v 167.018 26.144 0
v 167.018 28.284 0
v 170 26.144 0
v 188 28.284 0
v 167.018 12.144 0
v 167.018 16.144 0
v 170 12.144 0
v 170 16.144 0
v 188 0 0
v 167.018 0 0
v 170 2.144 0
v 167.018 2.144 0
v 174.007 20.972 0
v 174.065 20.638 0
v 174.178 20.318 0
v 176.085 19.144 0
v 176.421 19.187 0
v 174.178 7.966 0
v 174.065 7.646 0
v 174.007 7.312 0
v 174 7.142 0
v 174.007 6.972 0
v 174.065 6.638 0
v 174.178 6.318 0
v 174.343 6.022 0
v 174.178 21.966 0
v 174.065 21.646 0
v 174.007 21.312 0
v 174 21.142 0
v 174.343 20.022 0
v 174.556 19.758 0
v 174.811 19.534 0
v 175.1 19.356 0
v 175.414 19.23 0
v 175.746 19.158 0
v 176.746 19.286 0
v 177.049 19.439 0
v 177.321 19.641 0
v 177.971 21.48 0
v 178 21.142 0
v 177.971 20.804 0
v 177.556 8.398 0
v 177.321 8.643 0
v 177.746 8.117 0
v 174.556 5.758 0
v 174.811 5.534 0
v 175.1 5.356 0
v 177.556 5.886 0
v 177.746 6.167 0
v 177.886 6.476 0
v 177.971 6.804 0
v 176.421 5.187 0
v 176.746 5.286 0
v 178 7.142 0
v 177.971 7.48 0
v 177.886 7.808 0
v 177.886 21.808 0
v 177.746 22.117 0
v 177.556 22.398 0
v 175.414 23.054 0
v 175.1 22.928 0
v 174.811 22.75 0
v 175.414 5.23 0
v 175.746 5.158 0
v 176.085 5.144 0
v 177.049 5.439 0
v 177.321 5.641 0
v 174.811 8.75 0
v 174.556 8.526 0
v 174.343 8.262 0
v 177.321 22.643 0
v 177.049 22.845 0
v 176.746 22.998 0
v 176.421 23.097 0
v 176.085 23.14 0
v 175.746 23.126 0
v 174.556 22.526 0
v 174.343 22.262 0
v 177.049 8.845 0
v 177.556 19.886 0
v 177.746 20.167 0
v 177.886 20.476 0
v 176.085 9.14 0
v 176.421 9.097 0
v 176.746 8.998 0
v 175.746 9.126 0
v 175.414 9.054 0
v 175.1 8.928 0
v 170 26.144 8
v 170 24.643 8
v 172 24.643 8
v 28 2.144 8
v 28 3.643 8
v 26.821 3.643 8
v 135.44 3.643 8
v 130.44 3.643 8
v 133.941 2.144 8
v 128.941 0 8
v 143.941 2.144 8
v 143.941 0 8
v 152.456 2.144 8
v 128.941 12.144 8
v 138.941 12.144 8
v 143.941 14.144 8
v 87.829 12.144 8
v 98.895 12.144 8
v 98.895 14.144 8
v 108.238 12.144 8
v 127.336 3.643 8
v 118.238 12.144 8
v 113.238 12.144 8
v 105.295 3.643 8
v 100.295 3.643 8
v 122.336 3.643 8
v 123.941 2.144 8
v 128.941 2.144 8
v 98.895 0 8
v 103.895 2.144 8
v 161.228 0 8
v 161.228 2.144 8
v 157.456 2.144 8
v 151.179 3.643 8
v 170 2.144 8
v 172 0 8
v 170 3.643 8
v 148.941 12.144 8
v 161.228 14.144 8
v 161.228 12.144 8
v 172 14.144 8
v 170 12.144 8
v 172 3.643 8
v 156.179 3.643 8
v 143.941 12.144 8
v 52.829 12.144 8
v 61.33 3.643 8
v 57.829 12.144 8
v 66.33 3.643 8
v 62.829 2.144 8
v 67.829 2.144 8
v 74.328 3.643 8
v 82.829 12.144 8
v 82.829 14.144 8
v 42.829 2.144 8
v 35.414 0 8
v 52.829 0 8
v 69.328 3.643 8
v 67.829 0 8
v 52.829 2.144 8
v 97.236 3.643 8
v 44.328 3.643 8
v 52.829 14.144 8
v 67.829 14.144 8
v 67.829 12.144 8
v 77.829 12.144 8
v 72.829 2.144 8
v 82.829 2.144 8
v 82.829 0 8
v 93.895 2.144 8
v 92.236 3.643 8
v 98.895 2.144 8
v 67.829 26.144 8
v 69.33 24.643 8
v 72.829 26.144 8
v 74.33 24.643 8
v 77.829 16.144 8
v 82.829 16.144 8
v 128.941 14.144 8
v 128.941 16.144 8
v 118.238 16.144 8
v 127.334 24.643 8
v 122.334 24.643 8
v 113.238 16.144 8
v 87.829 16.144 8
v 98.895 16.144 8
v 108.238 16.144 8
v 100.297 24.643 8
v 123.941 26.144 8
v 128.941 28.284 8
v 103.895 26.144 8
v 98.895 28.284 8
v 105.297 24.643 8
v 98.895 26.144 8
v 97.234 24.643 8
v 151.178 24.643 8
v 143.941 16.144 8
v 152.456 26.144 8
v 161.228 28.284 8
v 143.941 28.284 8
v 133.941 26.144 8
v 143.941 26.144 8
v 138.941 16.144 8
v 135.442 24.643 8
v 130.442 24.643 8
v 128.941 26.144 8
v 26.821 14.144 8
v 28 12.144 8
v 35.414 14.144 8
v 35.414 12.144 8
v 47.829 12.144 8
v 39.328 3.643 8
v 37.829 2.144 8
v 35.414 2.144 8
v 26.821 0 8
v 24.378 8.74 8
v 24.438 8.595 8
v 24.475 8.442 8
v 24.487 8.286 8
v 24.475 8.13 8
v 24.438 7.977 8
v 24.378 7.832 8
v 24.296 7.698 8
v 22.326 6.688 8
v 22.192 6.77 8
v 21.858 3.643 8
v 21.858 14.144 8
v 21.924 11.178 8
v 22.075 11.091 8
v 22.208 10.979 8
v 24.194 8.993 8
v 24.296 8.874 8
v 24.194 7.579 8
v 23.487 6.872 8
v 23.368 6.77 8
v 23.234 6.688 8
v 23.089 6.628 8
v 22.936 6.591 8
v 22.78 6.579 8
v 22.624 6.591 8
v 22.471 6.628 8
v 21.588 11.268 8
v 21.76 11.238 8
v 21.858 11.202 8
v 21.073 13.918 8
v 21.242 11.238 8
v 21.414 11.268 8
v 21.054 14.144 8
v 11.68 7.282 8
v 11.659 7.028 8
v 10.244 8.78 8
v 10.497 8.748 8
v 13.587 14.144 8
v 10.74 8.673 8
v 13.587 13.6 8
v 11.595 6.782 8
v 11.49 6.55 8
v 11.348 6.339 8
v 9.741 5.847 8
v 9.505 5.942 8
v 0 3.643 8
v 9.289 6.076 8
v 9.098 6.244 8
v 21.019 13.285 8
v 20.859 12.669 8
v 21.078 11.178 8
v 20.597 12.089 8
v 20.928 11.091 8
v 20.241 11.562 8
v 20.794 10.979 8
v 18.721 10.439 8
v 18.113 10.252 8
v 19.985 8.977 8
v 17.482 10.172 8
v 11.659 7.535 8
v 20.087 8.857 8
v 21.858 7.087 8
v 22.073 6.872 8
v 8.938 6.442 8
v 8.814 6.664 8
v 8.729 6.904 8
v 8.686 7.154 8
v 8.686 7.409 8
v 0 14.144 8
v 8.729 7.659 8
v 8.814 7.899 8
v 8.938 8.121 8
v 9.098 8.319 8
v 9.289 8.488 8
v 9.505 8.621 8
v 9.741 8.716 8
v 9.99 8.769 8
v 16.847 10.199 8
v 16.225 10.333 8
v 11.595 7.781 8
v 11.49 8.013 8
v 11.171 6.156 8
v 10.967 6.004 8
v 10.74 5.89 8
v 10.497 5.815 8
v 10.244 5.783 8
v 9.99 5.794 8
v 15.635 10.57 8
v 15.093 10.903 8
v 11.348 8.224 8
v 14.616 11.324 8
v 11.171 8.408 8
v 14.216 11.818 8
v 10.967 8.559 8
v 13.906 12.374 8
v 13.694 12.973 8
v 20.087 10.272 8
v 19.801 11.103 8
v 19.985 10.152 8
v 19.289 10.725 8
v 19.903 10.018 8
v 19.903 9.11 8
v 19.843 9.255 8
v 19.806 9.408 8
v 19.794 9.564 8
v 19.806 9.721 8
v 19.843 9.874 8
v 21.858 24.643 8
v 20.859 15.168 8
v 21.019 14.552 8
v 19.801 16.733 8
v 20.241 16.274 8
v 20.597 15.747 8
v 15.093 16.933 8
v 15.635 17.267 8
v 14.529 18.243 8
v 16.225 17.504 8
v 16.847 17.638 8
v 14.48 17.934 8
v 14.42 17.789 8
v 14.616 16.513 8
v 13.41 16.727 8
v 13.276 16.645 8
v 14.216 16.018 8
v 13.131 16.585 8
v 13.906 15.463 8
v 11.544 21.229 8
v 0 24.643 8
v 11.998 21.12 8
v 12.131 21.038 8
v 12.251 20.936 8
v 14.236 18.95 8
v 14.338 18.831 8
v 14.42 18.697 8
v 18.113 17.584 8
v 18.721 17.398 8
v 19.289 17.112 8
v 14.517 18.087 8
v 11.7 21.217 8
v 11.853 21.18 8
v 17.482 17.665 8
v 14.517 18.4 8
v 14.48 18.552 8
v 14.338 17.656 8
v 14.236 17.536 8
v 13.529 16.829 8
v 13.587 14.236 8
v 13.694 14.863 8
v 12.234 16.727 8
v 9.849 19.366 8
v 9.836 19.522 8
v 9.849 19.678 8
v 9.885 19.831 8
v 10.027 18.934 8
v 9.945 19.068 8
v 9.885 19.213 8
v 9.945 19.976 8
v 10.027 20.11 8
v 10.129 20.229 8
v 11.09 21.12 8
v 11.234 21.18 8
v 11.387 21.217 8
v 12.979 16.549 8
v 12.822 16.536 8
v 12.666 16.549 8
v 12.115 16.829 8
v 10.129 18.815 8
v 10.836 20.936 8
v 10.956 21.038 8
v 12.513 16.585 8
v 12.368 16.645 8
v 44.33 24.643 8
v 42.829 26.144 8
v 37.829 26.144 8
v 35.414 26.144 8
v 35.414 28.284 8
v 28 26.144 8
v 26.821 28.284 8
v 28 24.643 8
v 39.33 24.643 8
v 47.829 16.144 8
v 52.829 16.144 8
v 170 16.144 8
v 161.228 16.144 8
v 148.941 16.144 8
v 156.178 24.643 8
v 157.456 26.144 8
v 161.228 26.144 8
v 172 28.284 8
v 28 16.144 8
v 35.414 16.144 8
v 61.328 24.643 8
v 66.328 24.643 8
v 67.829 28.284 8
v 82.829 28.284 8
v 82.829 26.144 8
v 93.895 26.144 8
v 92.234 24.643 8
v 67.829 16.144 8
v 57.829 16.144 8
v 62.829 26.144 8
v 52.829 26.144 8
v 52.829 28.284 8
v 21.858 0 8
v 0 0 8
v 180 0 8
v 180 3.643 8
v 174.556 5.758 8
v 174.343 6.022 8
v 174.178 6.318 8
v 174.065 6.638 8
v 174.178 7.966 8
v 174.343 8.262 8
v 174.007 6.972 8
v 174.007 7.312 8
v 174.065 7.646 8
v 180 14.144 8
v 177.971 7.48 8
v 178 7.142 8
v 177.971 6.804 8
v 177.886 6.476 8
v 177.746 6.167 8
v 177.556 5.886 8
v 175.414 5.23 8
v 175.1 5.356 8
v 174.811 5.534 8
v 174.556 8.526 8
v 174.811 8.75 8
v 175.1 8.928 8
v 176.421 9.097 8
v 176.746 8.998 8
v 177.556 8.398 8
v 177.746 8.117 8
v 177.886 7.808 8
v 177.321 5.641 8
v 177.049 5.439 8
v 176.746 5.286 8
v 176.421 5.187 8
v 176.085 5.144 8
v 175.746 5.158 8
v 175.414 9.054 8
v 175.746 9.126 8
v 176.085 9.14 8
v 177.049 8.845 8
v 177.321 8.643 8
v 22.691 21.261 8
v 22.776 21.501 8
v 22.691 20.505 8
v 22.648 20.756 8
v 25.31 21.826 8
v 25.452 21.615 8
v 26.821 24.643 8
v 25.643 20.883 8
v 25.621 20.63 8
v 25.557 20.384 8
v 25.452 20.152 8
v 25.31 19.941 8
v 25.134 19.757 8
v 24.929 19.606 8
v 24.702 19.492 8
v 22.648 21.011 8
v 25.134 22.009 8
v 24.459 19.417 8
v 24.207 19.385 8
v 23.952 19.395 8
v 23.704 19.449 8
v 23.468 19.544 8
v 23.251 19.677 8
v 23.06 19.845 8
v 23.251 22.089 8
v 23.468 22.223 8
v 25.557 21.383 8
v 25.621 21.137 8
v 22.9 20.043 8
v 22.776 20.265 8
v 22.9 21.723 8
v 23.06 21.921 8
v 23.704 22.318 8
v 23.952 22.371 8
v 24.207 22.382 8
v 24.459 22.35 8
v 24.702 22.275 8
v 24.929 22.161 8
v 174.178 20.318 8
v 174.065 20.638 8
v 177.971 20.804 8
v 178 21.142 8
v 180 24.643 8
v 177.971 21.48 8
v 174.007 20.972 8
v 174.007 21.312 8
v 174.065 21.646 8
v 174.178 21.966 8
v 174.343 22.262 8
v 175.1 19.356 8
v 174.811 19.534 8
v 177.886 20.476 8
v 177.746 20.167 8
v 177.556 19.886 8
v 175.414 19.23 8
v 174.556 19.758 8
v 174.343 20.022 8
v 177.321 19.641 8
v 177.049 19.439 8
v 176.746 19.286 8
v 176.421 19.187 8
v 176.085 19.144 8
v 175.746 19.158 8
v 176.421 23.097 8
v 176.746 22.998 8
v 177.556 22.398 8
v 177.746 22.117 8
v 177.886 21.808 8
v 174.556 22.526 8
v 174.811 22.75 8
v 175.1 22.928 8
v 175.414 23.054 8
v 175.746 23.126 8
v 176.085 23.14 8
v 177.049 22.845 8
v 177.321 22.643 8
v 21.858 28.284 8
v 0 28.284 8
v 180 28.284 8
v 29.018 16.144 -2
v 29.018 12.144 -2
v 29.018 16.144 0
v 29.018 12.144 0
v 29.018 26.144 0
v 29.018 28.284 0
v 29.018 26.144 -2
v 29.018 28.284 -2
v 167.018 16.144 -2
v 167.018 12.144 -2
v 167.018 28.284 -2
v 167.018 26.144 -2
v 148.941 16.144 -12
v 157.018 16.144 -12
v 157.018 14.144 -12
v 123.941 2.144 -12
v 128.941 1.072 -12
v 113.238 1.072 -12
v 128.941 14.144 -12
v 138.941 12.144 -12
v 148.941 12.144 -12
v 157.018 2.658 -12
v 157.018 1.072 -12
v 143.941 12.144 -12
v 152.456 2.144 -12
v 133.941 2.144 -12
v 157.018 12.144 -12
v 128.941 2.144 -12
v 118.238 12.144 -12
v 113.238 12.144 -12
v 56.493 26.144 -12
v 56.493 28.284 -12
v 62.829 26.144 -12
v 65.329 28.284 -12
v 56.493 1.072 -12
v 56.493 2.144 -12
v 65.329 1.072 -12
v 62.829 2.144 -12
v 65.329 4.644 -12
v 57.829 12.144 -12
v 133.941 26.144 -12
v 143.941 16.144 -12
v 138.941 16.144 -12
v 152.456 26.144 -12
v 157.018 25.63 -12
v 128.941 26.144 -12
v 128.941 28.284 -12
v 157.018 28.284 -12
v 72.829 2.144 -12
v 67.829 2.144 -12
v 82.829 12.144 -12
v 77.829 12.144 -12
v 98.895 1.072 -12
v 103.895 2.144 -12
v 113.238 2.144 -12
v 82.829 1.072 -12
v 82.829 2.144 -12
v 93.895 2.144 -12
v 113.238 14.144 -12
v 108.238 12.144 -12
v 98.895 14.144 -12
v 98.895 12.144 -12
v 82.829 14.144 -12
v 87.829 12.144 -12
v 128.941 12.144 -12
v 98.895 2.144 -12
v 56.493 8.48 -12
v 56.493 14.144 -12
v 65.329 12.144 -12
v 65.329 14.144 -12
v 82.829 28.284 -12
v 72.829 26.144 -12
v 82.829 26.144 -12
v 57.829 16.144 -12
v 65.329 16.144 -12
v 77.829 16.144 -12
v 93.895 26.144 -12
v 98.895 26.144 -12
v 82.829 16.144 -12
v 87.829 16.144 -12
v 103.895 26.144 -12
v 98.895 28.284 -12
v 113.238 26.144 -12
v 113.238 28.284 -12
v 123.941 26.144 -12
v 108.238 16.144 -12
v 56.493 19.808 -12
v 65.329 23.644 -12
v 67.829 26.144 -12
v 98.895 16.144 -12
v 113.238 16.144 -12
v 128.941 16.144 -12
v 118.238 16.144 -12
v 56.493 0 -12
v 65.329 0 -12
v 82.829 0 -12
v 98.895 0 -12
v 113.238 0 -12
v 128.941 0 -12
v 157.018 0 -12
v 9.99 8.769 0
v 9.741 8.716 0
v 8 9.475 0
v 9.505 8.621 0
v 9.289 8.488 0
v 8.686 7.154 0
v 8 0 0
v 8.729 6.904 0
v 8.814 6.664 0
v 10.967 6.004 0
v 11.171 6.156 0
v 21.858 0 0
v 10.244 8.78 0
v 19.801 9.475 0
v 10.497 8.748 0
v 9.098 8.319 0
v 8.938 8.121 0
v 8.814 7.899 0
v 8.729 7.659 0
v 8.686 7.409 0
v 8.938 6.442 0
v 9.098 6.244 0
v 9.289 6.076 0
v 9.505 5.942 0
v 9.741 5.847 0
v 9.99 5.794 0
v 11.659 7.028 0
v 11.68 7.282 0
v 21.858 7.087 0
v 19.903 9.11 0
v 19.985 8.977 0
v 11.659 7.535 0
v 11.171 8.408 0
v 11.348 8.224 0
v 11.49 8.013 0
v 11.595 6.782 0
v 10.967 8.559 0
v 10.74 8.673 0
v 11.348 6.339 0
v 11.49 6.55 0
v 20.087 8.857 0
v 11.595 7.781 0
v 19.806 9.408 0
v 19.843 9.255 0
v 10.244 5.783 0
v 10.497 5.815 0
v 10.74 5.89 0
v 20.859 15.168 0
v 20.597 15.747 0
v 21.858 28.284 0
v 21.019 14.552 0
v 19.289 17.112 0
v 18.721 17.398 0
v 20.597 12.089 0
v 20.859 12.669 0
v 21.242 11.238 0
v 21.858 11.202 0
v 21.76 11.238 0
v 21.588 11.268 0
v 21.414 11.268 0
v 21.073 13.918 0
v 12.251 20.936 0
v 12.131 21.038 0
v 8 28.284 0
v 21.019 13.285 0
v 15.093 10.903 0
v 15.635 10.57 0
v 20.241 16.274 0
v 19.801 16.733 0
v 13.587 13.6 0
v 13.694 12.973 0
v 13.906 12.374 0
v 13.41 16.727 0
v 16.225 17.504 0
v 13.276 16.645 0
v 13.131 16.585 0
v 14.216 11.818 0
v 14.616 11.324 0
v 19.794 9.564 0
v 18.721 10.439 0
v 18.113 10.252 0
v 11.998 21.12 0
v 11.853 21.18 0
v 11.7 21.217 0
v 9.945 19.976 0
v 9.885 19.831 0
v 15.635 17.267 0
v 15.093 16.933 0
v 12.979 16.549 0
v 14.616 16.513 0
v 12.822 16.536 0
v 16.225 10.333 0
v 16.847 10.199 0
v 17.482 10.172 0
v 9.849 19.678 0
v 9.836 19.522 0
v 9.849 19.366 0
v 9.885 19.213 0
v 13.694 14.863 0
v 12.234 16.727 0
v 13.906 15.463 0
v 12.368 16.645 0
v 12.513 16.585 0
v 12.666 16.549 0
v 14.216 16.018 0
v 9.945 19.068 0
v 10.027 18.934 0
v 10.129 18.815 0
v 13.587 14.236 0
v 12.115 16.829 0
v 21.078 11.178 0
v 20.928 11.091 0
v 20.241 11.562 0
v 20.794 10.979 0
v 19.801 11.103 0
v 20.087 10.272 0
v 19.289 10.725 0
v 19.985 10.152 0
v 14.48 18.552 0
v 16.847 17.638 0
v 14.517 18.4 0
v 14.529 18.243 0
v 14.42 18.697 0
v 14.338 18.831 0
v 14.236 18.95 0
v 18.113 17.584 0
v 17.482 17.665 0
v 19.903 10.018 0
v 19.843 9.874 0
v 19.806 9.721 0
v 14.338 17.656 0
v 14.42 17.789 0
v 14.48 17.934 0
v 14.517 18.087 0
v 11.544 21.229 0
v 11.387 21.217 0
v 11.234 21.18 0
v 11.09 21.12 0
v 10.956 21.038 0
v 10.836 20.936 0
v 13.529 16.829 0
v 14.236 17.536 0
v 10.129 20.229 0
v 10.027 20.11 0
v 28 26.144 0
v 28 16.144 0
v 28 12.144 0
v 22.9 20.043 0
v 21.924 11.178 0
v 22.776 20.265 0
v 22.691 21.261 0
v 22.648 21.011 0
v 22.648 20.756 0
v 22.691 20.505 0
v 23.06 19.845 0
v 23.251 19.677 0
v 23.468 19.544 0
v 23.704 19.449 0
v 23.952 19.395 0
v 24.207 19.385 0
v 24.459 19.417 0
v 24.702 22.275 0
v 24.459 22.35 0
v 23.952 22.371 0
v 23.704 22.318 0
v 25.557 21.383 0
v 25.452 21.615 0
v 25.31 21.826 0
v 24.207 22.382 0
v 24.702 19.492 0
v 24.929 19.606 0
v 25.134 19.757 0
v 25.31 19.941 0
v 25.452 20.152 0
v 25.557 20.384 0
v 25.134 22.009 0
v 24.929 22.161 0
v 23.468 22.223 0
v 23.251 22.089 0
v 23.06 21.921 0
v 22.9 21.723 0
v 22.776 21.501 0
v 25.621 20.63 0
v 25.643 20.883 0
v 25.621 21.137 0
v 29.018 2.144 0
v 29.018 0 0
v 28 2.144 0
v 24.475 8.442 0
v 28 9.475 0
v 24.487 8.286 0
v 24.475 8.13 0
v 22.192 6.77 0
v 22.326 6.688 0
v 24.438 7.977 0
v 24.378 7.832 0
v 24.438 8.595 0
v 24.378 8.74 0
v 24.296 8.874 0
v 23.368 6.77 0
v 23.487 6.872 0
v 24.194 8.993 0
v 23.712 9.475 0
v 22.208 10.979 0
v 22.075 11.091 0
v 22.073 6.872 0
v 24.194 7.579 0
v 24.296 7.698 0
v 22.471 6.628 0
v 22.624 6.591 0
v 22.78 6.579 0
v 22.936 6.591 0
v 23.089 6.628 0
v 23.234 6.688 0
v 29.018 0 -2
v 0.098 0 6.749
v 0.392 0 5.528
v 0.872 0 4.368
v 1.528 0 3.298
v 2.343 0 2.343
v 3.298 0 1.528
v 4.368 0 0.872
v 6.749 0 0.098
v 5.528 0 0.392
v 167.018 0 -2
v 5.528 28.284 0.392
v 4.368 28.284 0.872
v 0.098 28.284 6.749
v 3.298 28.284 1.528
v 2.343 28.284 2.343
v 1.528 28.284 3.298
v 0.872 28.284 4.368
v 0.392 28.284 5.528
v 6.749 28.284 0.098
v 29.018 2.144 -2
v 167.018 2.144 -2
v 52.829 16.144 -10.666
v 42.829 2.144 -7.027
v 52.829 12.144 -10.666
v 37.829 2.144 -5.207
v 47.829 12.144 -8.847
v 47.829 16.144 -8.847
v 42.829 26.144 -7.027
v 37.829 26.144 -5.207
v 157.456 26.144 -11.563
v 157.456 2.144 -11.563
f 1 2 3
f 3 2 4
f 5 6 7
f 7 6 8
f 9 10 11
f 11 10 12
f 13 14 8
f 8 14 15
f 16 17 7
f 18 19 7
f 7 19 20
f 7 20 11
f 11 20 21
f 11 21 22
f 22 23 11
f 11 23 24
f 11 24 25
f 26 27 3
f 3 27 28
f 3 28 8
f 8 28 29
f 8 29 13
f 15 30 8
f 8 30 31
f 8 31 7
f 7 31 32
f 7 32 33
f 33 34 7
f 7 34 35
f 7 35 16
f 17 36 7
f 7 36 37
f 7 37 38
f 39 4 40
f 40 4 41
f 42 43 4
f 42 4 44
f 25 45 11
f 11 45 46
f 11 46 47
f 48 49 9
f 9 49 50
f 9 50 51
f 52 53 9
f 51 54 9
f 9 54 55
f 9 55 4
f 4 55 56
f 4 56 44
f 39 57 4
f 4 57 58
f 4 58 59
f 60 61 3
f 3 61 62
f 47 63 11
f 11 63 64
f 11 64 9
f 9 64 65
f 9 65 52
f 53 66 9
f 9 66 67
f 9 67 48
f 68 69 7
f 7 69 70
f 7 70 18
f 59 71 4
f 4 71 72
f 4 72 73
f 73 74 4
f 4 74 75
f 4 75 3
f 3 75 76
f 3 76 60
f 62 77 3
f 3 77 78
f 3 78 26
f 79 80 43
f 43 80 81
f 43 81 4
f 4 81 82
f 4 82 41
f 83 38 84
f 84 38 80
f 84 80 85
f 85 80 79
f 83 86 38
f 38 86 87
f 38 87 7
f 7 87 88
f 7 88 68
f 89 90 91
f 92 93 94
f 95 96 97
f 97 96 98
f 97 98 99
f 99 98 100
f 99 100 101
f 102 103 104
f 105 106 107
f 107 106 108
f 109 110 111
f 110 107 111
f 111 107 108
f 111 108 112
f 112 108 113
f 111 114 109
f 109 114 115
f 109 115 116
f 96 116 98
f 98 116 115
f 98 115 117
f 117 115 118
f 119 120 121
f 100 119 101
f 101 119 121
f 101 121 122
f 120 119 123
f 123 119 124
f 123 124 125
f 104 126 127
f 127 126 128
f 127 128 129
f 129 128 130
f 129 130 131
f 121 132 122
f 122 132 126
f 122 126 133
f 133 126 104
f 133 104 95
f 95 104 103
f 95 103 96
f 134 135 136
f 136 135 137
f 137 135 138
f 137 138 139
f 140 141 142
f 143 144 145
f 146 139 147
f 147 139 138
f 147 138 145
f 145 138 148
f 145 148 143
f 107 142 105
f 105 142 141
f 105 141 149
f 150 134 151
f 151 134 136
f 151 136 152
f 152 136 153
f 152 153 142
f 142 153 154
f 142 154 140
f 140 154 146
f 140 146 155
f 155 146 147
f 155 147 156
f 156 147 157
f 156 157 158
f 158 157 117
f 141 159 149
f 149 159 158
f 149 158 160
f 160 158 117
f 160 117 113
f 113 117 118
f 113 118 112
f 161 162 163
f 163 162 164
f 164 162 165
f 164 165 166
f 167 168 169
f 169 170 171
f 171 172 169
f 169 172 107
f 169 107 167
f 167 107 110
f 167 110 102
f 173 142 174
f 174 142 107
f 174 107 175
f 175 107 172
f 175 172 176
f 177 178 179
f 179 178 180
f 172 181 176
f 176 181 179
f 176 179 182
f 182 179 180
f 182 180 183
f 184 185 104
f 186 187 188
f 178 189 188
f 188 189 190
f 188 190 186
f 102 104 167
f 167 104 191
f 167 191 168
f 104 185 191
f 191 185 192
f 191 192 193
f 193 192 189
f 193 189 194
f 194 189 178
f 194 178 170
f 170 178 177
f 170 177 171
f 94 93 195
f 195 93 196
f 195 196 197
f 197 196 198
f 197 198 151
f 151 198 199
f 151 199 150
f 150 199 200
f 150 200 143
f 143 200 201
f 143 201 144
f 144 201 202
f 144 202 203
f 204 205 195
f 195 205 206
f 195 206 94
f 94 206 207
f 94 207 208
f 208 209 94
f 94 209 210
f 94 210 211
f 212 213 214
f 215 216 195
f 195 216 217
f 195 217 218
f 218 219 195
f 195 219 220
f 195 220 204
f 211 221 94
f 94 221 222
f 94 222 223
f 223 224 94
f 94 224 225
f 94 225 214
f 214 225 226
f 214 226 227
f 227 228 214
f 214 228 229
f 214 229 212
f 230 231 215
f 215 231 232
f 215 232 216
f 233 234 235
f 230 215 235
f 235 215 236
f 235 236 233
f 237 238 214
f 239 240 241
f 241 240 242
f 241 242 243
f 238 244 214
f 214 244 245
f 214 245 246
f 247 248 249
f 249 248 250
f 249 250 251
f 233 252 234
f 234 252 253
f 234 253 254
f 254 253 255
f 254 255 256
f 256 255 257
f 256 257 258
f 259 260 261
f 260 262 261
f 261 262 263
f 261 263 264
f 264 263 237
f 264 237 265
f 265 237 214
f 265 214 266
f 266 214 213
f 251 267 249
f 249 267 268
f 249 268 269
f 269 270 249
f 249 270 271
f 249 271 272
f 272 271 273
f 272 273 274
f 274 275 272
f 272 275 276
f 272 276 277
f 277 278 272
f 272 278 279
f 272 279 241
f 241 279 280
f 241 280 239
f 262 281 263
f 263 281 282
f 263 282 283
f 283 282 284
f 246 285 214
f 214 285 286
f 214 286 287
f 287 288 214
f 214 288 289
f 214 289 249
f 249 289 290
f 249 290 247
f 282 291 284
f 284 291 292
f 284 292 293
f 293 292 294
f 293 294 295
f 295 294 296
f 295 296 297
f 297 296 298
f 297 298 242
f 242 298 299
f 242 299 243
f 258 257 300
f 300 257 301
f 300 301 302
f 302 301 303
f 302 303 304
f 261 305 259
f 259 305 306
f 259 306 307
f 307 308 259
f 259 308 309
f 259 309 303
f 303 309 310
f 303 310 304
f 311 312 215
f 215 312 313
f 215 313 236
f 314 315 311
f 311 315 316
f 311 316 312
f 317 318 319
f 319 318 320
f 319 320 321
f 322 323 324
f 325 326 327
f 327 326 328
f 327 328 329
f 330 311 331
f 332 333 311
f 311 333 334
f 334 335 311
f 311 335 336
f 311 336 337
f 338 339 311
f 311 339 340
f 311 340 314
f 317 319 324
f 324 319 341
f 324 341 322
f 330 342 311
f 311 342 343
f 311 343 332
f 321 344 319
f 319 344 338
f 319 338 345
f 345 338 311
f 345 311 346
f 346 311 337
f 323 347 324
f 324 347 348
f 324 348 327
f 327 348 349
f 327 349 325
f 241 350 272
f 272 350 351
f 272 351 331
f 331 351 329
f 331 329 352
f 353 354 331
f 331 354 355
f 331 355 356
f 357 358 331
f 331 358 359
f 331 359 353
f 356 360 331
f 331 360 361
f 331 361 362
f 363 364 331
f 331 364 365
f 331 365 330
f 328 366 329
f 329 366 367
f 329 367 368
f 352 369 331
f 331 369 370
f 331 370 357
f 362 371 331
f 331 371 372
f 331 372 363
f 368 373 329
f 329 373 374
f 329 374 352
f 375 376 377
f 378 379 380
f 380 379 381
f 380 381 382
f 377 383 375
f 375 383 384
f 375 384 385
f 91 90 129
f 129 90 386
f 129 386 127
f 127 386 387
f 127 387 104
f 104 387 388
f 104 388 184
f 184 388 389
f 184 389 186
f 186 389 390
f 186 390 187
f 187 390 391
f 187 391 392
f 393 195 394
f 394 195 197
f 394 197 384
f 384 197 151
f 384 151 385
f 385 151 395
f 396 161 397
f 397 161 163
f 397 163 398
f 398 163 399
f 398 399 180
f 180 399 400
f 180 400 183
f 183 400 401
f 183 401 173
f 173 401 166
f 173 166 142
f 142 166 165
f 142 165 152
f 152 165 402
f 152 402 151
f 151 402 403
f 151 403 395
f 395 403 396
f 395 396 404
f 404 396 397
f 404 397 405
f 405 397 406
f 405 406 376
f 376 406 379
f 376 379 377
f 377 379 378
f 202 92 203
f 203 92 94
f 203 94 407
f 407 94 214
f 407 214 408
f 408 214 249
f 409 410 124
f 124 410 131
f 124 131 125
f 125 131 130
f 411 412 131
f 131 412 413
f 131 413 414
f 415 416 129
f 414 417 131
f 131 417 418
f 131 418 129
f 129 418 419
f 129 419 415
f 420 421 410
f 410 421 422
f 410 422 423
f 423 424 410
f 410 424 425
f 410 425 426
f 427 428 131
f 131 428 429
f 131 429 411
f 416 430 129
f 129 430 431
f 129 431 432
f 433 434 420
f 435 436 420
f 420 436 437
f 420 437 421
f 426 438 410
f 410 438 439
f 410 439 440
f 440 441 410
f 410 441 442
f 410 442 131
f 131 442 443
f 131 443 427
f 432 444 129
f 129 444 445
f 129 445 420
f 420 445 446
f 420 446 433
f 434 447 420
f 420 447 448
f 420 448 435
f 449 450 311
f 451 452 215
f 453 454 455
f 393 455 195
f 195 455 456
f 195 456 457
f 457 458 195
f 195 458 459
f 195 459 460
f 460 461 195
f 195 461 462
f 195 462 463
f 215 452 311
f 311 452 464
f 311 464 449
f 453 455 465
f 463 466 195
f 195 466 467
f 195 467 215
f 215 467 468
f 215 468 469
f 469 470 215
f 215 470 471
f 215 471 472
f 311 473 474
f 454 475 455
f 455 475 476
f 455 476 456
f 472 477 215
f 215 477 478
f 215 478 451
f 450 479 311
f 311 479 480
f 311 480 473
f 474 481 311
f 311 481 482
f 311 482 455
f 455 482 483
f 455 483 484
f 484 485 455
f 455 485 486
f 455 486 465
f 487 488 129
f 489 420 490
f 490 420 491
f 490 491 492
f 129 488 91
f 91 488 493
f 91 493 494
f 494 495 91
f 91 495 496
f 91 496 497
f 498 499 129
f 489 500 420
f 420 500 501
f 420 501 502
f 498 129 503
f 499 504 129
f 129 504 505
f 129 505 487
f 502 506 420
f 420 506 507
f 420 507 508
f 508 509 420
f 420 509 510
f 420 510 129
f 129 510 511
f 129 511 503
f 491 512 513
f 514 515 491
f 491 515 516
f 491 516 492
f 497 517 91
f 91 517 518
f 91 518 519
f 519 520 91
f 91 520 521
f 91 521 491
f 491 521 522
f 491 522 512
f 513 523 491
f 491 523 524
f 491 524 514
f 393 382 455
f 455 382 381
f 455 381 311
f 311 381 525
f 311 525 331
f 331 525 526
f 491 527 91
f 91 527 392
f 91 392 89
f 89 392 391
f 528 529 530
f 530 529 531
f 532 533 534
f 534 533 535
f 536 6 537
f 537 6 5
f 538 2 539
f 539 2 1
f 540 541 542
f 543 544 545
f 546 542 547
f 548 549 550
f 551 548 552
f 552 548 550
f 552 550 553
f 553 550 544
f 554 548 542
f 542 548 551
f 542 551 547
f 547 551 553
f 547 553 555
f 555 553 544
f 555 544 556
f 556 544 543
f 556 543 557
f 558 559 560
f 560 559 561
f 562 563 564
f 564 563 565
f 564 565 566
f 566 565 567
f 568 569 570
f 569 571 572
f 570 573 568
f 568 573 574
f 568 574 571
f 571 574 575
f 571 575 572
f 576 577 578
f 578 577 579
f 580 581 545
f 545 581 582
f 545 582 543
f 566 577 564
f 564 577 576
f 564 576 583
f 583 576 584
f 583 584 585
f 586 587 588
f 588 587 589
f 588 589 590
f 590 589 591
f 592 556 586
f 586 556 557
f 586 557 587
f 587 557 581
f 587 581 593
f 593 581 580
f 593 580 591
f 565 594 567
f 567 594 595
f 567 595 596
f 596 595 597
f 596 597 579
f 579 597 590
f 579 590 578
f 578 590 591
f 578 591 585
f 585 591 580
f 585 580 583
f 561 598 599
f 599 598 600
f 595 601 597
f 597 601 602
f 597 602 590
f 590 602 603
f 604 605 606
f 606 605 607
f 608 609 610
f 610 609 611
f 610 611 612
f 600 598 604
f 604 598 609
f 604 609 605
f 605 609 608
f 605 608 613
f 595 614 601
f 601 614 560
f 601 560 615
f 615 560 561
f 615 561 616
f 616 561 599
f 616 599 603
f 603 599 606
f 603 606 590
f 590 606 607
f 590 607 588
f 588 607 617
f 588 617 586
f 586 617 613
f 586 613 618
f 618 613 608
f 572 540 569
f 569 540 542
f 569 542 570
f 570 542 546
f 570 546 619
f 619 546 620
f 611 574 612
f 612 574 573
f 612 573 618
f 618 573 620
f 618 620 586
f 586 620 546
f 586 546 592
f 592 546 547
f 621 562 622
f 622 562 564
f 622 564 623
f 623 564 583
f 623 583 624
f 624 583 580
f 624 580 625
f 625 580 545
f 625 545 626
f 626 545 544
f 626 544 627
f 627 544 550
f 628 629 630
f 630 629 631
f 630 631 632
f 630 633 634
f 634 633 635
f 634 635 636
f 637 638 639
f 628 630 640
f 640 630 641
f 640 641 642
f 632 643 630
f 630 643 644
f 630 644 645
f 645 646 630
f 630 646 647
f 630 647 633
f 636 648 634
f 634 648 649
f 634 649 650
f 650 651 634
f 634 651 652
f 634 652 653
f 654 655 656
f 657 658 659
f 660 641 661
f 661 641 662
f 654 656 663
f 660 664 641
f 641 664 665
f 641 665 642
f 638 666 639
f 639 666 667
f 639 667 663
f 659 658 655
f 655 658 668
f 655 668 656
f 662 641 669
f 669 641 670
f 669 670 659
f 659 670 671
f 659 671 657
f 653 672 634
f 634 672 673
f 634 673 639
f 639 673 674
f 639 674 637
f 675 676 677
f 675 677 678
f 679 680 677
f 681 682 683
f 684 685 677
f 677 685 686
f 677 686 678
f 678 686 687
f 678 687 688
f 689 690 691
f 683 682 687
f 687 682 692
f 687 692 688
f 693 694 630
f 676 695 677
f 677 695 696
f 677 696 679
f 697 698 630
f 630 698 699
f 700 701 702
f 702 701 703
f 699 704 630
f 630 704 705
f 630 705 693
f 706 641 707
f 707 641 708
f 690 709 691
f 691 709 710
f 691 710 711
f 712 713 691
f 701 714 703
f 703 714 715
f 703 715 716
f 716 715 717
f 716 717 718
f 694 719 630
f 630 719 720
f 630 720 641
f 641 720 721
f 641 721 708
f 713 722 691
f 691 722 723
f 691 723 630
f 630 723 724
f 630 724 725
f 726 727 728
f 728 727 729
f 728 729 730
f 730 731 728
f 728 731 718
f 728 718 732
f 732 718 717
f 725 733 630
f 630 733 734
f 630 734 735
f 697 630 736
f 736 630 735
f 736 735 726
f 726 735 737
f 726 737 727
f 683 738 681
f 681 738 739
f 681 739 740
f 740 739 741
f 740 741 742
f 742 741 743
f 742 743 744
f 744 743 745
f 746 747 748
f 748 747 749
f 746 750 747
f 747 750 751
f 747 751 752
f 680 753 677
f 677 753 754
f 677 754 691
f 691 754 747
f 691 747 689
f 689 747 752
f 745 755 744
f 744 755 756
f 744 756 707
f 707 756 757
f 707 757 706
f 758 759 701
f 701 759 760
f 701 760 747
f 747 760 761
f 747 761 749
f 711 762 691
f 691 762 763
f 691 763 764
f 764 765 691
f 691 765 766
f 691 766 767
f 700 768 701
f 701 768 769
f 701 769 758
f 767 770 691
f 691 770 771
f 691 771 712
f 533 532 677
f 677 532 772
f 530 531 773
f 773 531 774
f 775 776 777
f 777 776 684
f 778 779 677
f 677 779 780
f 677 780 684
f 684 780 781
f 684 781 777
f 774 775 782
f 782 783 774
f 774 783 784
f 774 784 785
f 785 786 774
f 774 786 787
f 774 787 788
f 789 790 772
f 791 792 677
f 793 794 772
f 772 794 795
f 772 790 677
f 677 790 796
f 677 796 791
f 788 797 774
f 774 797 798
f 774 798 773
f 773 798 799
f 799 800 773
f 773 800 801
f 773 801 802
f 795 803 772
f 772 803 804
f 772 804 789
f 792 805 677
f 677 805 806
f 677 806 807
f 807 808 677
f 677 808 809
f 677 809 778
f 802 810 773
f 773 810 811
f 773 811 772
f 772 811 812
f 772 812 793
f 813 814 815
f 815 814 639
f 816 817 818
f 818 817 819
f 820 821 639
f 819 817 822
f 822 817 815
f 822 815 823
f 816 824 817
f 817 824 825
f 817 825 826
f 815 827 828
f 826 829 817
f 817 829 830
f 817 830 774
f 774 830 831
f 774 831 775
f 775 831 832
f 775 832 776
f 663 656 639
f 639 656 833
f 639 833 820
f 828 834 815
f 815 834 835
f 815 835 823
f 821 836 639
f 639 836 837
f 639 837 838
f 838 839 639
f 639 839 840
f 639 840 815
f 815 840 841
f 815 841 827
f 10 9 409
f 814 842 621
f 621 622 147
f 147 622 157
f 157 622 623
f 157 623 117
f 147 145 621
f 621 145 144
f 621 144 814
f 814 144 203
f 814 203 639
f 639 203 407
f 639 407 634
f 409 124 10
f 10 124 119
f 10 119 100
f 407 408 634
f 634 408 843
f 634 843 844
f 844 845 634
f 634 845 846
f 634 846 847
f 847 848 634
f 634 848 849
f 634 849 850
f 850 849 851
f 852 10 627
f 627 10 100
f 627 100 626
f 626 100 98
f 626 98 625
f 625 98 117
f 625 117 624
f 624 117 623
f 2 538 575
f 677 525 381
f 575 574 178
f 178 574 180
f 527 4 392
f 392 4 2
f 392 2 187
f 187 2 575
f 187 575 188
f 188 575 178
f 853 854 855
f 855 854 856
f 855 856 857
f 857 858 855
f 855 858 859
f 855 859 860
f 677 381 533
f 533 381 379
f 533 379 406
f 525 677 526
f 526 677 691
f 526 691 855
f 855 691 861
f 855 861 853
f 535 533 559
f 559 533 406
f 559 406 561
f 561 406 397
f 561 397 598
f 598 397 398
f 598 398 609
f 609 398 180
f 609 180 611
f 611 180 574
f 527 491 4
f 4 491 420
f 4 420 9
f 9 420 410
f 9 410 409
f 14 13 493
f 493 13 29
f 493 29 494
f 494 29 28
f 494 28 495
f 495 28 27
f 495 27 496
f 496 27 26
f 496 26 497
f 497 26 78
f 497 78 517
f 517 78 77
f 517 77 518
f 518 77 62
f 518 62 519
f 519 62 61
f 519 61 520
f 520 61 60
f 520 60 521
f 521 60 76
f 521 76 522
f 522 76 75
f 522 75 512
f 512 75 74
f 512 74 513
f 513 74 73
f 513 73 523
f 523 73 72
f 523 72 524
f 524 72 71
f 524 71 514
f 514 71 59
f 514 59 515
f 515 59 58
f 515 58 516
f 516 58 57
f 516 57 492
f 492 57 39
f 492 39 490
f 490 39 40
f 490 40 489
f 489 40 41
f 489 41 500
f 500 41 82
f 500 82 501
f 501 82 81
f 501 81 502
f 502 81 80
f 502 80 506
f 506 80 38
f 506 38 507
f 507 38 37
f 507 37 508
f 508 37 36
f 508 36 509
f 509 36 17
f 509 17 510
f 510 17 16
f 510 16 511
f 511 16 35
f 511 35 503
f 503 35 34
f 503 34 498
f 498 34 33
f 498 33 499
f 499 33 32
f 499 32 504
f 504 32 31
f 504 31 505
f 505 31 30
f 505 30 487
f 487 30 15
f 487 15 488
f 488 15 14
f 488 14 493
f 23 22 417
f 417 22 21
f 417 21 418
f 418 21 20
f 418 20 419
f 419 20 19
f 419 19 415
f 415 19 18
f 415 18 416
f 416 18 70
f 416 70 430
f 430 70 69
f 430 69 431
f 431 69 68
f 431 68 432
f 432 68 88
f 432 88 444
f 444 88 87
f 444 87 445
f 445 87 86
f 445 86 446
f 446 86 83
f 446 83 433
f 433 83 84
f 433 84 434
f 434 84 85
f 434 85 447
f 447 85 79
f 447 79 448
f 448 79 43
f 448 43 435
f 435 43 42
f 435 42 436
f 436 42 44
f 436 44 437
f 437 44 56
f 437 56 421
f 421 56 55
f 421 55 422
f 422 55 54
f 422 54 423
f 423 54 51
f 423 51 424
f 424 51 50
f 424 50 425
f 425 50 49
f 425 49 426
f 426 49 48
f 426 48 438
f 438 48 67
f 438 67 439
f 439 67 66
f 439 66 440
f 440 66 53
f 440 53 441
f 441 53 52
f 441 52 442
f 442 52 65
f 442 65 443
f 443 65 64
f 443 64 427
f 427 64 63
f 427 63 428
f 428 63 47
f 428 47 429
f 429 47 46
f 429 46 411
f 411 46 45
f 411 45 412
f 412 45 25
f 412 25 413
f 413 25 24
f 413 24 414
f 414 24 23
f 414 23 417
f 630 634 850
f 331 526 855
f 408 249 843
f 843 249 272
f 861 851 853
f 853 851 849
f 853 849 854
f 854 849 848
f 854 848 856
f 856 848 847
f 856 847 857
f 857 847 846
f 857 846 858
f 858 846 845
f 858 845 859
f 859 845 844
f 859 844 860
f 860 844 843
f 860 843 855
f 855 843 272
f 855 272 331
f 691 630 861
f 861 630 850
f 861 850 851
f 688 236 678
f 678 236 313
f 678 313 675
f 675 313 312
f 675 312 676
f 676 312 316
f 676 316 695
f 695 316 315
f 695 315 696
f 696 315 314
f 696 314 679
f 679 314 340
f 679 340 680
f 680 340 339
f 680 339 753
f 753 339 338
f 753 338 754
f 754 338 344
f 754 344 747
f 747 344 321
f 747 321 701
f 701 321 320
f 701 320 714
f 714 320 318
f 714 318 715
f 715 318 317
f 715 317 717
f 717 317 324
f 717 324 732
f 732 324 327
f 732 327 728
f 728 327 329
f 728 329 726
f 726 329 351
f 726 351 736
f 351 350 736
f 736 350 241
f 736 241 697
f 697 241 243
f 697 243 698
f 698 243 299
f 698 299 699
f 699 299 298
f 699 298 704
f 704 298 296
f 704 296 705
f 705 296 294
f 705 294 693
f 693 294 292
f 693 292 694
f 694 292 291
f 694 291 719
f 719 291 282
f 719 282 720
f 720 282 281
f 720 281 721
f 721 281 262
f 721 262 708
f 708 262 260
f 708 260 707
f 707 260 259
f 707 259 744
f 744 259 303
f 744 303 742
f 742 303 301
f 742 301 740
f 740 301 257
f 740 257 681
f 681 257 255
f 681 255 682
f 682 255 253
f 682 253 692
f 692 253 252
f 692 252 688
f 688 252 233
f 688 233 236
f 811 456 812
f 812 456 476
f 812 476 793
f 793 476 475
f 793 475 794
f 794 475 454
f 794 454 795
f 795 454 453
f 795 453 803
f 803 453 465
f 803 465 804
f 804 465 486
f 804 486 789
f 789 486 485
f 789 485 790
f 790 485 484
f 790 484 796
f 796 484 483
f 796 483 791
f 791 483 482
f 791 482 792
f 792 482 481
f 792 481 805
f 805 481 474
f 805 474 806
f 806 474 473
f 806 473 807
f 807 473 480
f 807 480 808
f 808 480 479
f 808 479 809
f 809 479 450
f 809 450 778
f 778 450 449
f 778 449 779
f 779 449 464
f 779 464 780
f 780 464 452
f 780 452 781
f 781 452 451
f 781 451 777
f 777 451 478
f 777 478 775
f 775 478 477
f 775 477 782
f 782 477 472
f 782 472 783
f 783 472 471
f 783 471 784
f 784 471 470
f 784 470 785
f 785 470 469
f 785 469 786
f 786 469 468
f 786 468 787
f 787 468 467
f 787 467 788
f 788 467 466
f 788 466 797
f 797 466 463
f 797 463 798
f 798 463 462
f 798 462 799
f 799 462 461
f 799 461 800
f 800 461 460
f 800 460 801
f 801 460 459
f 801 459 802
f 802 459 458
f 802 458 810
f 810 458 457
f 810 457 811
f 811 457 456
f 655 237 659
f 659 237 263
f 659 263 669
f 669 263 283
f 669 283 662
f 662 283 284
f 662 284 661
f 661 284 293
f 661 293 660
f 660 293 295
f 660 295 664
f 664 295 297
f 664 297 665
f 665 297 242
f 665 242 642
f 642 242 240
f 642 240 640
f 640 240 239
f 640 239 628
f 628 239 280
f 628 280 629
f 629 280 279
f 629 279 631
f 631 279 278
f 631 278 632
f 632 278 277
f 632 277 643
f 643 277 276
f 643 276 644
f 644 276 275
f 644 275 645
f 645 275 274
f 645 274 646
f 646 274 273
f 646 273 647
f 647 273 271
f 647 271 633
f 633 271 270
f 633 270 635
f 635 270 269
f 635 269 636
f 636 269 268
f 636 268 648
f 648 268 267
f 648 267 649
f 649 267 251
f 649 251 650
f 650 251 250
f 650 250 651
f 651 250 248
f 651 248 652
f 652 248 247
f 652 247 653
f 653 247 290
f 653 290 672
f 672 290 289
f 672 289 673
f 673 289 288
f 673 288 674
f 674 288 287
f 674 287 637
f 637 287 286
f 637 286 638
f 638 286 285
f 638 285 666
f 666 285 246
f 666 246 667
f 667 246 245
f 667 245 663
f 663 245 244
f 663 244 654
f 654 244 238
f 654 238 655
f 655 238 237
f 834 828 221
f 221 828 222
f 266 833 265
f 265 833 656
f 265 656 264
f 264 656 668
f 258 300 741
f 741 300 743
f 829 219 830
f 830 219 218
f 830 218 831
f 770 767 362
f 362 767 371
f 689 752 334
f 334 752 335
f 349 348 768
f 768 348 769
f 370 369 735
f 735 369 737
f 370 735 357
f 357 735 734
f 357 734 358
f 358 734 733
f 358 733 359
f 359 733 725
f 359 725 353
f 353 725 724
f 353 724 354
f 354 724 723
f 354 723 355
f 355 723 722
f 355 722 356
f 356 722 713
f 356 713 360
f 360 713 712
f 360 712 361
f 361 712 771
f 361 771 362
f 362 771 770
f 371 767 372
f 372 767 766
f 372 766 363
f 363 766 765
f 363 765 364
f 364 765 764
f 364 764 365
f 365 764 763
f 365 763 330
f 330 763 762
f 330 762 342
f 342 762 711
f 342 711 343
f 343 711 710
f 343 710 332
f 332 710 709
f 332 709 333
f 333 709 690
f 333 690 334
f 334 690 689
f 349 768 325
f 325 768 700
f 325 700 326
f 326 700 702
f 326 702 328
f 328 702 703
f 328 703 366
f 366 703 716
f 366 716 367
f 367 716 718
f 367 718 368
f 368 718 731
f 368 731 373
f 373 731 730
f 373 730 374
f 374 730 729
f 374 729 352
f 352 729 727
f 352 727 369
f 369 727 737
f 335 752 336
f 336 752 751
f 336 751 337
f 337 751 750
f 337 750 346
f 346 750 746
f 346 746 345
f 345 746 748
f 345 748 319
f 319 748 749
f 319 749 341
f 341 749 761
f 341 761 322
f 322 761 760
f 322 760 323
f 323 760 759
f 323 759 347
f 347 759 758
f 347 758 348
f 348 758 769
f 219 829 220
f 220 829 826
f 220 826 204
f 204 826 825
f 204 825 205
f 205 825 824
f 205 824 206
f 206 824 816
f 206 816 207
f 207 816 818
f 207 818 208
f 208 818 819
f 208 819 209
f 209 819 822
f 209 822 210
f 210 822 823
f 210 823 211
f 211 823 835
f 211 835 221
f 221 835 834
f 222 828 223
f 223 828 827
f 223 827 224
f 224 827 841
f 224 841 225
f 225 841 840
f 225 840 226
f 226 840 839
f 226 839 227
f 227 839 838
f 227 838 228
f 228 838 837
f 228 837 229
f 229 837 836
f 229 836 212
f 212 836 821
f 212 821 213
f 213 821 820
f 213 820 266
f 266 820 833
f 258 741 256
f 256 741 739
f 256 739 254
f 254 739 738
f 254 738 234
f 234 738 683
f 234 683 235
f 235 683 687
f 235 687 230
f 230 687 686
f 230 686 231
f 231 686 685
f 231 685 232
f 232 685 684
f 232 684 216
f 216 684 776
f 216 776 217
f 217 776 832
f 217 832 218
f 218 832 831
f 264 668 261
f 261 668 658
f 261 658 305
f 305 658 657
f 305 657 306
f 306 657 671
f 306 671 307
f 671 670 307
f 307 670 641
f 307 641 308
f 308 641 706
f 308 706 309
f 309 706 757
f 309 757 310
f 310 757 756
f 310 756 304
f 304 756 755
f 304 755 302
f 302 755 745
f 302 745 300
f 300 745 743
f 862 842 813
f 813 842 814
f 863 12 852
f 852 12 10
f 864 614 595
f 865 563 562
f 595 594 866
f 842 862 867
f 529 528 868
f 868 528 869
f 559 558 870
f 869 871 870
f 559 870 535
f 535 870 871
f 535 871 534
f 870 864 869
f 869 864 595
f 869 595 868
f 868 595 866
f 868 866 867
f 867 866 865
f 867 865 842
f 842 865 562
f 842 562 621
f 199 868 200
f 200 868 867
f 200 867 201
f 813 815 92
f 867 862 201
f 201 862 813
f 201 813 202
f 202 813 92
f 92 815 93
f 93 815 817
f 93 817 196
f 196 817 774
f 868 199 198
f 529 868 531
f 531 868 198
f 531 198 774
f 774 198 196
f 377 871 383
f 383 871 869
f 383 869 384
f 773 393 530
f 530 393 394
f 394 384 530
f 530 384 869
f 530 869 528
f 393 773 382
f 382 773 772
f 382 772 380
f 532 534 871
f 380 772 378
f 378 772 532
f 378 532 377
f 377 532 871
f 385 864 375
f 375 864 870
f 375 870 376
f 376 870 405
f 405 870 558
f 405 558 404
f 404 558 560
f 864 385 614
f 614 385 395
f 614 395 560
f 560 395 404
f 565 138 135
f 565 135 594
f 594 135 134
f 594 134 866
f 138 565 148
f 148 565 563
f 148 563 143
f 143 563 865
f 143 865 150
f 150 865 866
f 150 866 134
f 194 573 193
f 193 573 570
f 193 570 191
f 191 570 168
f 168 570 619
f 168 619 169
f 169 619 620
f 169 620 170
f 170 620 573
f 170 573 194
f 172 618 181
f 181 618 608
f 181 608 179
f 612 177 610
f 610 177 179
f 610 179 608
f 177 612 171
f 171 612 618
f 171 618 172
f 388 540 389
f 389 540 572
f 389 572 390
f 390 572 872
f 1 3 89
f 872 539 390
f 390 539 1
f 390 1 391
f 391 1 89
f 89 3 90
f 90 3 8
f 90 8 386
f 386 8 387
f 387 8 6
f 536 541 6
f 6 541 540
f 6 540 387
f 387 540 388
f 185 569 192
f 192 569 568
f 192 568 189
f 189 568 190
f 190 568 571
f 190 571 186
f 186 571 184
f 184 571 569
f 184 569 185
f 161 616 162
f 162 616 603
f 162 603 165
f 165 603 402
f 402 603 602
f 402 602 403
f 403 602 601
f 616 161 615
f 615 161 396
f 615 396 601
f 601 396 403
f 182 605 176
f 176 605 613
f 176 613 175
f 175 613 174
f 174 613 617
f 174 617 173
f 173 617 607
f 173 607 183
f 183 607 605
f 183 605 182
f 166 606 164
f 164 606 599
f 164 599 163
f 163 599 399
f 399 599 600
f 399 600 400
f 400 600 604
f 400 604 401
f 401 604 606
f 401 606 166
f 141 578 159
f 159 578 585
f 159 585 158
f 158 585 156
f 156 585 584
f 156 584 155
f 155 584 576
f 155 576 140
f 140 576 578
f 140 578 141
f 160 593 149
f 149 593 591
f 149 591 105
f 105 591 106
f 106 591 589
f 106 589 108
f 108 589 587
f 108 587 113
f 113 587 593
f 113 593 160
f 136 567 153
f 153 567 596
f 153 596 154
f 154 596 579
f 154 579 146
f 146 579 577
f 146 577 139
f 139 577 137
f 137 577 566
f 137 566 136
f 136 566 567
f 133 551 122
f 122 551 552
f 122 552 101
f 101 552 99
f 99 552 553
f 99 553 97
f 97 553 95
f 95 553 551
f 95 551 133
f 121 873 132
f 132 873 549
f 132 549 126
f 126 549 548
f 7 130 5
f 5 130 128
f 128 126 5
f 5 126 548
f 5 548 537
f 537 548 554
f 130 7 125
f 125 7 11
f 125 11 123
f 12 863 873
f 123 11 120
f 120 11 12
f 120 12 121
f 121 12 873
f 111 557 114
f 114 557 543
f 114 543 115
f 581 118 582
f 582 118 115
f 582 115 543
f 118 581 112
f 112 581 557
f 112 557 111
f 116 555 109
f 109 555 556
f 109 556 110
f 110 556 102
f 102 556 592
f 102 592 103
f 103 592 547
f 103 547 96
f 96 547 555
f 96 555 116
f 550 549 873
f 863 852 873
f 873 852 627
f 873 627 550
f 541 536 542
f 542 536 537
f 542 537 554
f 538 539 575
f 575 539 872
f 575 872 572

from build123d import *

# Parameters (mm, degrees)
ESQUISSE1_W         = 200
ESQUISSE1_H         = 28.284
BOSS_EXTRU_3_DEPTH  = 8
CHANFREIN1_SIZE     = 20
ESQUISSE4_R         = 2
CUT_EXTRUDE5_DEPTH  = 30
FILLET1_R           = 8
SKETCH2_R           = 1.5
SKETCH2_R_2         = 3.75
CUT_EXTRUDE1_DEPTH  = 8
FILLET9_R           = 1
FILLET10_R          = 1
SKETCH6_W           = 138
SKETCH6_H           = 28.284
BOSS_EXTRUDE3_DEPTH = 12
CHAMFER2_SIZE       = 10
CHAMFER2_SIZE2      = 27.474774195
CUT_EXTRUDE6_DEPTH  = 20
CHAMFER8_SIZE       = 10
CHAMFER9_SIZE       = 10


# Some blends are built 0.0001 mm under size
with BuildPart() as part:
    # Esquisse1 → Boss.-Extru.3 (new body)
    with BuildSketch(Plane.XY):
        with Locations((100, 14.142)):
            Rectangle(ESQUISSE1_W, ESQUISSE1_H)
    extrude(amount=BOSS_EXTRU_3_DEPTH)

    # Chanfrein1
    # the kernel refuses this chamfer: 20 mm, written as the material it takes off along each edge
    with BuildSketch(Plane(origin=(200, -51.433659759, 8), x_dir=(0.027495876610586317, 0, -0.9996219169112968), z_dir=(0, 1, 0))) as chanfrein1_piece_1:
        Polygon((CHANFREIN1_SIZE * 0.999621916911, CHANFREIN1_SIZE * 0.0274958766106), (-CHANFREIN1_SIZE * 0.0274958766106, CHANFREIN1_SIZE * 0.999621916911), (0, 0), align=None)
    extrude(amount=131.151319519, mode=Mode.SUBTRACT)

    # Esquisse4 → Cut-Extrude5 (cut)
    with BuildSketch(Plane.XY.offset(8)):
        with Locations((176, 7.142)):
            Circle(ESQUISSE4_R)
        with Locations((176, 21.142)):
            Circle(ESQUISSE4_R)
    extrude(amount=-CUT_EXTRUDE5_DEPTH, mode=Mode.SUBTRACT)

    # Fillet1
    fillet1_edges = [part.edges().sort_by_distance(p)[0] for p in [
        (0, 14.142, 0),
    ]]
    fillet(fillet1_edges, radius=FILLET1_R - 0.0001)  # a hair under: the kernel refuses the full size

    # Sketch2 → Cut-Extrude1 (cut)
    with BuildSketch(Plane.XY.offset(8)):
        with Locations((10.180485171, 7.281517741)):
            Circle(SKETCH2_R)
        with Locations((24.142857006, 20.883346587)):
            Circle(SKETCH2_R)
        with Locations((17.323003706, 13.918303783)):
            Circle(SKETCH2_R_2)
        Polygon((14.943517177, 18.243352736), (12.822196834, 16.122032392), (9.422196834, 19.522032392), (11.543517177, 21.643352736), align=None)
        Polygon((19.379761465, 9.564467761), (22.780003771, 6.164594852), (24.901208877, 8.286030428), (21.501081812, 11.685788108), align=None)
    extrude(amount=-CUT_EXTRUDE1_DEPTH, mode=Mode.SUBTRACT)

    # Fillet9
    fillet9_edges = [part.edges().sort_by_distance(p)[0] for p in [
        (9.422196834, 19.522032392, 4),
        (11.543517177, 21.643352736, 4),
        (14.943517177, 18.243352736, 4),
        (12.822196834, 16.122032392, 4),
    ]]
    fillet(fillet9_edges, radius=FILLET9_R)

    # Fillet10
    fillet10_edges = [part.edges().sort_by_distance(p)[0] for p in [
        (24.901208877, 8.286030428, 4),
        (22.780003771, 6.164594852, 4),
        (19.379761465, 9.564467761, 4),
        (21.501081812, 11.685788108, 4),
    ]]
    fillet(fillet10_edges, radius=FILLET10_R)

    # Sketch6 → Boss-Extrude3 (add)
    with BuildSketch(Plane(origin=(0, 0, 0), x_dir=(-1, 0, 0), z_dir=(0, 0, -1))):
        with Locations((-98.018199025, 14.142)):
            Rectangle(SKETCH6_W, SKETCH6_H)
    extrude(amount=BOSS_EXTRUDE3_DEPTH)

    # Chamfer2
    chamfer2_edges = [part.edges().sort_by_distance(p)[0] for p in [
        (29.018199025, 14.142, -12),
    ]]
    chamfer2_side = [part.faces().sort_by_distance(p)[0] for p in [
        (29.018199025, 14.142, -6),
    ]]
    chamfer(chamfer2_edges, length=CHAMFER2_SIZE, length2=CHAMFER2_SIZE2, reference=chamfer2_side[0])

    # Sketch4 → Cut-Extrude6 (cut)
    with BuildSketch(Plane.XY.offset(8)):
        Polygon((47.82891302, 12.144), (28, 12.144), (28, 2.144), (37.82891302, 2.144), align=None)
        Polygon((62.82891302, 2.144), (52.82891302, 12.144), (42.82891302, 2.144), align=None)
        Polygon((77.82891302, 12.144), (57.82891302, 12.144), (67.82891302, 2.144), align=None)
        Polygon((82.82891302, 12.144), (72.82891302, 2.144), (93.894603713, 2.144), align=None)
        Polygon((108.238219115, 12.144), (87.82891302, 12.144), (98.894603713, 2.144), align=None)
        Polygon((113.238219115, 12.144), (103.894603713, 2.144), (123.940714423, 2.144), align=None)
        Polygon((138.940714423, 12.144), (118.238219115, 12.144), (128.940714423, 2.144), align=None)
        Polygon((143.940714423, 12.144), (133.940714423, 2.144), (152.455696505, 2.144), align=None)
        Polygon((170, 12.144), (148.940714423, 12.144), (157.455696505, 2.144), (170, 2.144), align=None)
        Polygon((157.455696505, 26.144), (148.940714423, 16.144), (170, 16.144), (170, 26.144), align=None)
        Polygon((152.455696505, 26.144), (133.940714423, 26.144), (143.940714423, 16.144), align=None)
        Polygon((128.940714423, 26.144), (118.238219115, 16.144), (138.940714423, 16.144), align=None)
        Polygon((123.940714423, 26.144), (103.894603713, 26.144), (113.238219115, 16.144), align=None)
        Polygon((98.894603713, 26.144), (87.82891302, 16.144), (108.238219115, 16.144), align=None)
        Polygon((93.894603713, 26.144), (72.82891302, 26.144), (82.82891302, 16.144), align=None)
        Polygon((67.82891302, 26.144), (57.82891302, 16.144), (77.82891302, 16.144), align=None)
        Polygon((62.82891302, 26.144), (42.82891302, 26.144), (52.82891302, 16.144), align=None)
        Polygon((37.82891302, 26.144), (28, 26.144), (28, 16.144), (47.82891302, 16.144), align=None)
    extrude(amount=-CUT_EXTRUDE6_DEPTH, mode=Mode.SUBTRACT)

    # Chamfer8
    chamfer8_edges = [part.edges().sort_by_distance(p)[0] for p in [
        (167.018199025, 1.072, -12),
        (167.018199025, 14.144, -12),
    ]]
    chamfer(chamfer8_edges, length=CHAMFER8_SIZE)

    # Chamfer9
    chamfer9_edges = [part.edges().sort_by_distance(p)[0] for p in [
        (167.018199025, 27.214, -12),
    ]]
    chamfer(chamfer9_edges, length=CHAMFER9_SIZE)


solid = part.part
